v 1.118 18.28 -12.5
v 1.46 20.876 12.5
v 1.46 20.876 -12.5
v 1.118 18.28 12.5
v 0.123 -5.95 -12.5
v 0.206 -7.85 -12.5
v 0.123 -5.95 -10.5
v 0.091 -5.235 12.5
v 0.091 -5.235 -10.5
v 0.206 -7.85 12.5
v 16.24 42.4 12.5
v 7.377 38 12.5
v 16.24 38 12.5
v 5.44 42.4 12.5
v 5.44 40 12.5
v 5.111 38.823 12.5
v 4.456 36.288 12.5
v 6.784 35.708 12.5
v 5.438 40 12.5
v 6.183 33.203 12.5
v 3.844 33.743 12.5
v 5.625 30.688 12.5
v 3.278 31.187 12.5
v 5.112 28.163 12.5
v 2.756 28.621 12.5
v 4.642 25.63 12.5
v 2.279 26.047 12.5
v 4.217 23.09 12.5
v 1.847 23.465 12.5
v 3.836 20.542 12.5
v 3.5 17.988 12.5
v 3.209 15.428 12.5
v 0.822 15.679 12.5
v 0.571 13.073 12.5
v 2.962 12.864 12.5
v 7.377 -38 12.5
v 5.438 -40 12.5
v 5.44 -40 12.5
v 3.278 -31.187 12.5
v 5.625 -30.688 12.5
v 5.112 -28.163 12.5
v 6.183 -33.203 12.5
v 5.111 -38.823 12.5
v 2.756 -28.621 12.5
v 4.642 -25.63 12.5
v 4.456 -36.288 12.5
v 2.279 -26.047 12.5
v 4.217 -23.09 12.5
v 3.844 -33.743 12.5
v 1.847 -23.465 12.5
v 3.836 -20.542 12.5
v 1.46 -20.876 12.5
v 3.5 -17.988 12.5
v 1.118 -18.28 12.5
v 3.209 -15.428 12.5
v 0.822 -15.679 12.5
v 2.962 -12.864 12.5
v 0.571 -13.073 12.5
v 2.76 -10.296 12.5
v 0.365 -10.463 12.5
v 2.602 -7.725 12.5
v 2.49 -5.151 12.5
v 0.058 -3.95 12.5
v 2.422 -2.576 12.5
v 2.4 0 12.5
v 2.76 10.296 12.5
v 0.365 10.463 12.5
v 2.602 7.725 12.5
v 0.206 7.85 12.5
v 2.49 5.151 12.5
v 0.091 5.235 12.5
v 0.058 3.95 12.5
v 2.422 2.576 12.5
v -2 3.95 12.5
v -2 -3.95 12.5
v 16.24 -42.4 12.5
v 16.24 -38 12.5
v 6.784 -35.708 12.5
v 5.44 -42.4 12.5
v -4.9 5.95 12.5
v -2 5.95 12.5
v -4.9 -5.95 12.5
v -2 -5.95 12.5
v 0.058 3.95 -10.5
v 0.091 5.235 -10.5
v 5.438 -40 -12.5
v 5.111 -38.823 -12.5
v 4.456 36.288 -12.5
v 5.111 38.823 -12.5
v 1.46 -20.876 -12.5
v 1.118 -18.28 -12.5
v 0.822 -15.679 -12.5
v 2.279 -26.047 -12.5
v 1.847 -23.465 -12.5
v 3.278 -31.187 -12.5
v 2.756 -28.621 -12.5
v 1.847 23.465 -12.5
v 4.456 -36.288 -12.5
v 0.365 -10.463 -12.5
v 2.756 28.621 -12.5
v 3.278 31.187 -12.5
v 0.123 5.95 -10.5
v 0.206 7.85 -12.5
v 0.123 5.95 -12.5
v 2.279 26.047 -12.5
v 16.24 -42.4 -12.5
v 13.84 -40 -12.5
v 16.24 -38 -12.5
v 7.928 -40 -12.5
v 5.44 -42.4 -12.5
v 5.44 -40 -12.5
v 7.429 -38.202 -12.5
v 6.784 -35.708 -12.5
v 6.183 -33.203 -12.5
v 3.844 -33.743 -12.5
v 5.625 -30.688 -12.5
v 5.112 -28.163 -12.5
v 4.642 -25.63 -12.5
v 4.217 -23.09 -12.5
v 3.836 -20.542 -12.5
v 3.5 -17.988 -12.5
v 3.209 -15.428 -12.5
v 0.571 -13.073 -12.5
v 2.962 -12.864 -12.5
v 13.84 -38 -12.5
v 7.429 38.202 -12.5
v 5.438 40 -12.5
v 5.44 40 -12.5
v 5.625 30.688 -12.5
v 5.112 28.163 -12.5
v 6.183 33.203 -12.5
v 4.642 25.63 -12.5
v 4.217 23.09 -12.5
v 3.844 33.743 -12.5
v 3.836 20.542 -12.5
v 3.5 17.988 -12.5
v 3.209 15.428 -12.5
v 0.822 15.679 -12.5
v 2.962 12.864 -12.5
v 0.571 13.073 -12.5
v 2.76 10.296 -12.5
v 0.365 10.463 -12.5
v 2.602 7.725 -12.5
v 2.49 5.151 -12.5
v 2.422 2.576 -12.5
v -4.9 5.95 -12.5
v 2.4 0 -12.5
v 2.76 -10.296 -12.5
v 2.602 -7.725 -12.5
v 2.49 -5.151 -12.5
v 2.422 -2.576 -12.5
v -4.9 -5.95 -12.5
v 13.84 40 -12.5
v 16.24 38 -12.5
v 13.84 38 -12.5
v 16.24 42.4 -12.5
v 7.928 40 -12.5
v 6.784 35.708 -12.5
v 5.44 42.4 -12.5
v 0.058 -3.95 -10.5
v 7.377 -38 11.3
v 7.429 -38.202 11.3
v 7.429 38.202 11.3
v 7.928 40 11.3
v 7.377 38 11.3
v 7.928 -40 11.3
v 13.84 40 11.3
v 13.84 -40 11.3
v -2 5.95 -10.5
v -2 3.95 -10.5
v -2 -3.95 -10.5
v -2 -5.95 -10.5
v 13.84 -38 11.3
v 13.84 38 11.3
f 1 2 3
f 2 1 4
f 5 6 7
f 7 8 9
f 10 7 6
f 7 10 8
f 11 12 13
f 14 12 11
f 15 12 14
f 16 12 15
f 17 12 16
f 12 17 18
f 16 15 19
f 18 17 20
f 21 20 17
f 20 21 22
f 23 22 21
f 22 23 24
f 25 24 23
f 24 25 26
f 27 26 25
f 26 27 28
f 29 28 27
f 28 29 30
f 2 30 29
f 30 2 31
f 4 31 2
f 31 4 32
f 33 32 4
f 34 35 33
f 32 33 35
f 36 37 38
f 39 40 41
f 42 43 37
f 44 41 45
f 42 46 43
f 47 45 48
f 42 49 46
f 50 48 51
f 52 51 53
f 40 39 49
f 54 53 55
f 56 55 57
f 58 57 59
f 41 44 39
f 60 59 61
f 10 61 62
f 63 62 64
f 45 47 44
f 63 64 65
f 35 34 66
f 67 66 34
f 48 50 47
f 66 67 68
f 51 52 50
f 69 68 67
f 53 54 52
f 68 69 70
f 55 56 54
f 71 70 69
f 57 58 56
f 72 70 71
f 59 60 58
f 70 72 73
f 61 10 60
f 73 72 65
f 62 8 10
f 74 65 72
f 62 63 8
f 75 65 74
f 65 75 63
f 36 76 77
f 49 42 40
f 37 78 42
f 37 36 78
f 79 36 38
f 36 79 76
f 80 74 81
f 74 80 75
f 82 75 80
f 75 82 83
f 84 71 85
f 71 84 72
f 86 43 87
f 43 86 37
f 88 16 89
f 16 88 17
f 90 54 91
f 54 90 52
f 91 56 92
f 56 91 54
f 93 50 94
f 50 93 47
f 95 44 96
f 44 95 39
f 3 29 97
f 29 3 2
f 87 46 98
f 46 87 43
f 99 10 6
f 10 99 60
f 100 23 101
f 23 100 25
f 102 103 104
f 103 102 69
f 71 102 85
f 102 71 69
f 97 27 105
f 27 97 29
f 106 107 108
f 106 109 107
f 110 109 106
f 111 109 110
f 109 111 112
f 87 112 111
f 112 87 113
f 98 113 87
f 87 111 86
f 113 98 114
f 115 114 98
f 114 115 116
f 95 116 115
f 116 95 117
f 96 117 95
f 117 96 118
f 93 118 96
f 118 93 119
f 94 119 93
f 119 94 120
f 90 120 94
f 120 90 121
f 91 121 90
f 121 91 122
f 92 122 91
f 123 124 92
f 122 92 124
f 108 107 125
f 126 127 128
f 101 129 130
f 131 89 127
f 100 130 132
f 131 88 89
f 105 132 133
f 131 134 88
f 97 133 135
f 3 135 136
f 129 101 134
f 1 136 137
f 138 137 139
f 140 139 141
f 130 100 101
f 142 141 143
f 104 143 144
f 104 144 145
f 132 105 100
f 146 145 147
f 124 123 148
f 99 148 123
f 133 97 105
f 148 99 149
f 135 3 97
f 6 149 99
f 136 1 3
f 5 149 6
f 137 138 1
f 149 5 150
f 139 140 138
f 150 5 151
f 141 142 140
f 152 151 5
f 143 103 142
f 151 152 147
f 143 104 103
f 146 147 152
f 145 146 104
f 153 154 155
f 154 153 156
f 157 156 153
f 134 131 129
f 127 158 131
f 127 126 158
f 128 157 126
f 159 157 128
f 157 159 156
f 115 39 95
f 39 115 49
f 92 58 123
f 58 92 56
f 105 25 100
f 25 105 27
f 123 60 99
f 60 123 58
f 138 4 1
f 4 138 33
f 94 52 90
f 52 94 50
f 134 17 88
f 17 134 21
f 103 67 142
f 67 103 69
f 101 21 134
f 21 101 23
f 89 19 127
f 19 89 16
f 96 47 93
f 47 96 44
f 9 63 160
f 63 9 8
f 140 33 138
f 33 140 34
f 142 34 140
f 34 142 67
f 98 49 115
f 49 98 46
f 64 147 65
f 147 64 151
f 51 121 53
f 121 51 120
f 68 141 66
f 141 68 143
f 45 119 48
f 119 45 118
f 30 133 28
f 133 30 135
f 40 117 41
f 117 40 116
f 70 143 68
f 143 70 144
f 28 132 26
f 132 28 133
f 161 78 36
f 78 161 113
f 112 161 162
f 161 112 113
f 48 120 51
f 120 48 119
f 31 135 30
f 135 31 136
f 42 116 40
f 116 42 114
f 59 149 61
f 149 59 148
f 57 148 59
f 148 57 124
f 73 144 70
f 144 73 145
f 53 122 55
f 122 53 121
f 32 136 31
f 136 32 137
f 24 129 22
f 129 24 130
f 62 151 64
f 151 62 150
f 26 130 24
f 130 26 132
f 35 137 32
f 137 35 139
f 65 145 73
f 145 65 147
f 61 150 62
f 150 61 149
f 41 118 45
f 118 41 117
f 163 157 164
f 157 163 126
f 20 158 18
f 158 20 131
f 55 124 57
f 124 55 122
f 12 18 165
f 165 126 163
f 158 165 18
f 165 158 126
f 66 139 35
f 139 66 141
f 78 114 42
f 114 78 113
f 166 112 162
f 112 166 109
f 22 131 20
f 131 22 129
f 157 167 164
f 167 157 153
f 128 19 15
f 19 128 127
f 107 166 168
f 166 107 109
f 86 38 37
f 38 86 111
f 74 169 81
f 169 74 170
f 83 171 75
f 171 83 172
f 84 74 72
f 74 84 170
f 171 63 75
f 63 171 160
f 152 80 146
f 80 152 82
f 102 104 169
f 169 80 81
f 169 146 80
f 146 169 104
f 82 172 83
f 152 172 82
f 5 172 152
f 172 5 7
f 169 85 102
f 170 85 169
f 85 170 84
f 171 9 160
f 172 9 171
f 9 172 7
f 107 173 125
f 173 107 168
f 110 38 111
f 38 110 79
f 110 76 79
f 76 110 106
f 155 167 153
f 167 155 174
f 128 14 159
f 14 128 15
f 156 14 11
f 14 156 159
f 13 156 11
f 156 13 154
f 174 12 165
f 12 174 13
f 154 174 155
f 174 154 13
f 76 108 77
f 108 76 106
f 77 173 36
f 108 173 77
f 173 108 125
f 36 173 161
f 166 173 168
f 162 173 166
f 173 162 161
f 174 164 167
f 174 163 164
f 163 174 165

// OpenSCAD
$fa = 1;
$fs = 0.15;

clip_w = 80;
clip_d = 6;
clip_hook = 2;
clip_h = 25;

thickness = 2.4;
r = 150;
magic = 5.44;

module bracket() {
  intersection() {
    translate([r, 0, 0])
    difference() {
      cylinder(r = r, h = clip_h, center = true);
      cylinder(r = r-thickness, h = clip_h, center = true);
    }
    cube([20, clip_w, clip_h], center = true);
  }
  translate([magic+(clip_d+thickness)/2, -(clip_w/2+thickness/2), 0])
    cube([clip_d+thickness, thickness, clip_h], center = true);


  translate([magic+(clip_d+thickness)/2, (clip_w/2+thickness/2), 0])
    cube([clip_d+thickness, thickness, clip_h], center = true);

  translate([magic+clip_d+thickness*1.5, (clip_w/2+thickness/2-clip_hook/2), 0])
    cube([thickness, thickness+clip_hook, clip_h], center = true);

  translate([magic+clip_d+thickness*1.5, -(clip_w/2+thickness/2-clip_hook/2), 0])
    cube([thickness, thickness+clip_hook, clip_h], center = true);
  
  translate([magic+(clip_d+thickness)/2, -(clip_w/2+thickness/2-clip_hook/2), clip_h/2-thickness/4])
    cube([clip_d+thickness, thickness+clip_hook, thickness/2], center = true);
  translate([magic+(clip_d+thickness)/2, (clip_w/2+thickness/2-clip_hook/2), clip_h/2-thickness/4])
    cube([clip_d+thickness, thickness+clip_hook, thickness/2], center = true);
}

t=4;
adj=0.1;
module slot() {
  slot_w = 12-adj;
  slot_h = 3-adj;
  cube([t, slot_w-t, clip_h], center = true);
  
  translate([-(t/2+slot_h/2), 0, 0])
    cube([slot_h, slot_w, clip_h], center = true);
  
  translate([-adj, 0, -(clip_h/2-t/4)])
    cube([slot_h + t/4 + 1, slot_w, t/2], center=true);
}

slot();
bracket();
